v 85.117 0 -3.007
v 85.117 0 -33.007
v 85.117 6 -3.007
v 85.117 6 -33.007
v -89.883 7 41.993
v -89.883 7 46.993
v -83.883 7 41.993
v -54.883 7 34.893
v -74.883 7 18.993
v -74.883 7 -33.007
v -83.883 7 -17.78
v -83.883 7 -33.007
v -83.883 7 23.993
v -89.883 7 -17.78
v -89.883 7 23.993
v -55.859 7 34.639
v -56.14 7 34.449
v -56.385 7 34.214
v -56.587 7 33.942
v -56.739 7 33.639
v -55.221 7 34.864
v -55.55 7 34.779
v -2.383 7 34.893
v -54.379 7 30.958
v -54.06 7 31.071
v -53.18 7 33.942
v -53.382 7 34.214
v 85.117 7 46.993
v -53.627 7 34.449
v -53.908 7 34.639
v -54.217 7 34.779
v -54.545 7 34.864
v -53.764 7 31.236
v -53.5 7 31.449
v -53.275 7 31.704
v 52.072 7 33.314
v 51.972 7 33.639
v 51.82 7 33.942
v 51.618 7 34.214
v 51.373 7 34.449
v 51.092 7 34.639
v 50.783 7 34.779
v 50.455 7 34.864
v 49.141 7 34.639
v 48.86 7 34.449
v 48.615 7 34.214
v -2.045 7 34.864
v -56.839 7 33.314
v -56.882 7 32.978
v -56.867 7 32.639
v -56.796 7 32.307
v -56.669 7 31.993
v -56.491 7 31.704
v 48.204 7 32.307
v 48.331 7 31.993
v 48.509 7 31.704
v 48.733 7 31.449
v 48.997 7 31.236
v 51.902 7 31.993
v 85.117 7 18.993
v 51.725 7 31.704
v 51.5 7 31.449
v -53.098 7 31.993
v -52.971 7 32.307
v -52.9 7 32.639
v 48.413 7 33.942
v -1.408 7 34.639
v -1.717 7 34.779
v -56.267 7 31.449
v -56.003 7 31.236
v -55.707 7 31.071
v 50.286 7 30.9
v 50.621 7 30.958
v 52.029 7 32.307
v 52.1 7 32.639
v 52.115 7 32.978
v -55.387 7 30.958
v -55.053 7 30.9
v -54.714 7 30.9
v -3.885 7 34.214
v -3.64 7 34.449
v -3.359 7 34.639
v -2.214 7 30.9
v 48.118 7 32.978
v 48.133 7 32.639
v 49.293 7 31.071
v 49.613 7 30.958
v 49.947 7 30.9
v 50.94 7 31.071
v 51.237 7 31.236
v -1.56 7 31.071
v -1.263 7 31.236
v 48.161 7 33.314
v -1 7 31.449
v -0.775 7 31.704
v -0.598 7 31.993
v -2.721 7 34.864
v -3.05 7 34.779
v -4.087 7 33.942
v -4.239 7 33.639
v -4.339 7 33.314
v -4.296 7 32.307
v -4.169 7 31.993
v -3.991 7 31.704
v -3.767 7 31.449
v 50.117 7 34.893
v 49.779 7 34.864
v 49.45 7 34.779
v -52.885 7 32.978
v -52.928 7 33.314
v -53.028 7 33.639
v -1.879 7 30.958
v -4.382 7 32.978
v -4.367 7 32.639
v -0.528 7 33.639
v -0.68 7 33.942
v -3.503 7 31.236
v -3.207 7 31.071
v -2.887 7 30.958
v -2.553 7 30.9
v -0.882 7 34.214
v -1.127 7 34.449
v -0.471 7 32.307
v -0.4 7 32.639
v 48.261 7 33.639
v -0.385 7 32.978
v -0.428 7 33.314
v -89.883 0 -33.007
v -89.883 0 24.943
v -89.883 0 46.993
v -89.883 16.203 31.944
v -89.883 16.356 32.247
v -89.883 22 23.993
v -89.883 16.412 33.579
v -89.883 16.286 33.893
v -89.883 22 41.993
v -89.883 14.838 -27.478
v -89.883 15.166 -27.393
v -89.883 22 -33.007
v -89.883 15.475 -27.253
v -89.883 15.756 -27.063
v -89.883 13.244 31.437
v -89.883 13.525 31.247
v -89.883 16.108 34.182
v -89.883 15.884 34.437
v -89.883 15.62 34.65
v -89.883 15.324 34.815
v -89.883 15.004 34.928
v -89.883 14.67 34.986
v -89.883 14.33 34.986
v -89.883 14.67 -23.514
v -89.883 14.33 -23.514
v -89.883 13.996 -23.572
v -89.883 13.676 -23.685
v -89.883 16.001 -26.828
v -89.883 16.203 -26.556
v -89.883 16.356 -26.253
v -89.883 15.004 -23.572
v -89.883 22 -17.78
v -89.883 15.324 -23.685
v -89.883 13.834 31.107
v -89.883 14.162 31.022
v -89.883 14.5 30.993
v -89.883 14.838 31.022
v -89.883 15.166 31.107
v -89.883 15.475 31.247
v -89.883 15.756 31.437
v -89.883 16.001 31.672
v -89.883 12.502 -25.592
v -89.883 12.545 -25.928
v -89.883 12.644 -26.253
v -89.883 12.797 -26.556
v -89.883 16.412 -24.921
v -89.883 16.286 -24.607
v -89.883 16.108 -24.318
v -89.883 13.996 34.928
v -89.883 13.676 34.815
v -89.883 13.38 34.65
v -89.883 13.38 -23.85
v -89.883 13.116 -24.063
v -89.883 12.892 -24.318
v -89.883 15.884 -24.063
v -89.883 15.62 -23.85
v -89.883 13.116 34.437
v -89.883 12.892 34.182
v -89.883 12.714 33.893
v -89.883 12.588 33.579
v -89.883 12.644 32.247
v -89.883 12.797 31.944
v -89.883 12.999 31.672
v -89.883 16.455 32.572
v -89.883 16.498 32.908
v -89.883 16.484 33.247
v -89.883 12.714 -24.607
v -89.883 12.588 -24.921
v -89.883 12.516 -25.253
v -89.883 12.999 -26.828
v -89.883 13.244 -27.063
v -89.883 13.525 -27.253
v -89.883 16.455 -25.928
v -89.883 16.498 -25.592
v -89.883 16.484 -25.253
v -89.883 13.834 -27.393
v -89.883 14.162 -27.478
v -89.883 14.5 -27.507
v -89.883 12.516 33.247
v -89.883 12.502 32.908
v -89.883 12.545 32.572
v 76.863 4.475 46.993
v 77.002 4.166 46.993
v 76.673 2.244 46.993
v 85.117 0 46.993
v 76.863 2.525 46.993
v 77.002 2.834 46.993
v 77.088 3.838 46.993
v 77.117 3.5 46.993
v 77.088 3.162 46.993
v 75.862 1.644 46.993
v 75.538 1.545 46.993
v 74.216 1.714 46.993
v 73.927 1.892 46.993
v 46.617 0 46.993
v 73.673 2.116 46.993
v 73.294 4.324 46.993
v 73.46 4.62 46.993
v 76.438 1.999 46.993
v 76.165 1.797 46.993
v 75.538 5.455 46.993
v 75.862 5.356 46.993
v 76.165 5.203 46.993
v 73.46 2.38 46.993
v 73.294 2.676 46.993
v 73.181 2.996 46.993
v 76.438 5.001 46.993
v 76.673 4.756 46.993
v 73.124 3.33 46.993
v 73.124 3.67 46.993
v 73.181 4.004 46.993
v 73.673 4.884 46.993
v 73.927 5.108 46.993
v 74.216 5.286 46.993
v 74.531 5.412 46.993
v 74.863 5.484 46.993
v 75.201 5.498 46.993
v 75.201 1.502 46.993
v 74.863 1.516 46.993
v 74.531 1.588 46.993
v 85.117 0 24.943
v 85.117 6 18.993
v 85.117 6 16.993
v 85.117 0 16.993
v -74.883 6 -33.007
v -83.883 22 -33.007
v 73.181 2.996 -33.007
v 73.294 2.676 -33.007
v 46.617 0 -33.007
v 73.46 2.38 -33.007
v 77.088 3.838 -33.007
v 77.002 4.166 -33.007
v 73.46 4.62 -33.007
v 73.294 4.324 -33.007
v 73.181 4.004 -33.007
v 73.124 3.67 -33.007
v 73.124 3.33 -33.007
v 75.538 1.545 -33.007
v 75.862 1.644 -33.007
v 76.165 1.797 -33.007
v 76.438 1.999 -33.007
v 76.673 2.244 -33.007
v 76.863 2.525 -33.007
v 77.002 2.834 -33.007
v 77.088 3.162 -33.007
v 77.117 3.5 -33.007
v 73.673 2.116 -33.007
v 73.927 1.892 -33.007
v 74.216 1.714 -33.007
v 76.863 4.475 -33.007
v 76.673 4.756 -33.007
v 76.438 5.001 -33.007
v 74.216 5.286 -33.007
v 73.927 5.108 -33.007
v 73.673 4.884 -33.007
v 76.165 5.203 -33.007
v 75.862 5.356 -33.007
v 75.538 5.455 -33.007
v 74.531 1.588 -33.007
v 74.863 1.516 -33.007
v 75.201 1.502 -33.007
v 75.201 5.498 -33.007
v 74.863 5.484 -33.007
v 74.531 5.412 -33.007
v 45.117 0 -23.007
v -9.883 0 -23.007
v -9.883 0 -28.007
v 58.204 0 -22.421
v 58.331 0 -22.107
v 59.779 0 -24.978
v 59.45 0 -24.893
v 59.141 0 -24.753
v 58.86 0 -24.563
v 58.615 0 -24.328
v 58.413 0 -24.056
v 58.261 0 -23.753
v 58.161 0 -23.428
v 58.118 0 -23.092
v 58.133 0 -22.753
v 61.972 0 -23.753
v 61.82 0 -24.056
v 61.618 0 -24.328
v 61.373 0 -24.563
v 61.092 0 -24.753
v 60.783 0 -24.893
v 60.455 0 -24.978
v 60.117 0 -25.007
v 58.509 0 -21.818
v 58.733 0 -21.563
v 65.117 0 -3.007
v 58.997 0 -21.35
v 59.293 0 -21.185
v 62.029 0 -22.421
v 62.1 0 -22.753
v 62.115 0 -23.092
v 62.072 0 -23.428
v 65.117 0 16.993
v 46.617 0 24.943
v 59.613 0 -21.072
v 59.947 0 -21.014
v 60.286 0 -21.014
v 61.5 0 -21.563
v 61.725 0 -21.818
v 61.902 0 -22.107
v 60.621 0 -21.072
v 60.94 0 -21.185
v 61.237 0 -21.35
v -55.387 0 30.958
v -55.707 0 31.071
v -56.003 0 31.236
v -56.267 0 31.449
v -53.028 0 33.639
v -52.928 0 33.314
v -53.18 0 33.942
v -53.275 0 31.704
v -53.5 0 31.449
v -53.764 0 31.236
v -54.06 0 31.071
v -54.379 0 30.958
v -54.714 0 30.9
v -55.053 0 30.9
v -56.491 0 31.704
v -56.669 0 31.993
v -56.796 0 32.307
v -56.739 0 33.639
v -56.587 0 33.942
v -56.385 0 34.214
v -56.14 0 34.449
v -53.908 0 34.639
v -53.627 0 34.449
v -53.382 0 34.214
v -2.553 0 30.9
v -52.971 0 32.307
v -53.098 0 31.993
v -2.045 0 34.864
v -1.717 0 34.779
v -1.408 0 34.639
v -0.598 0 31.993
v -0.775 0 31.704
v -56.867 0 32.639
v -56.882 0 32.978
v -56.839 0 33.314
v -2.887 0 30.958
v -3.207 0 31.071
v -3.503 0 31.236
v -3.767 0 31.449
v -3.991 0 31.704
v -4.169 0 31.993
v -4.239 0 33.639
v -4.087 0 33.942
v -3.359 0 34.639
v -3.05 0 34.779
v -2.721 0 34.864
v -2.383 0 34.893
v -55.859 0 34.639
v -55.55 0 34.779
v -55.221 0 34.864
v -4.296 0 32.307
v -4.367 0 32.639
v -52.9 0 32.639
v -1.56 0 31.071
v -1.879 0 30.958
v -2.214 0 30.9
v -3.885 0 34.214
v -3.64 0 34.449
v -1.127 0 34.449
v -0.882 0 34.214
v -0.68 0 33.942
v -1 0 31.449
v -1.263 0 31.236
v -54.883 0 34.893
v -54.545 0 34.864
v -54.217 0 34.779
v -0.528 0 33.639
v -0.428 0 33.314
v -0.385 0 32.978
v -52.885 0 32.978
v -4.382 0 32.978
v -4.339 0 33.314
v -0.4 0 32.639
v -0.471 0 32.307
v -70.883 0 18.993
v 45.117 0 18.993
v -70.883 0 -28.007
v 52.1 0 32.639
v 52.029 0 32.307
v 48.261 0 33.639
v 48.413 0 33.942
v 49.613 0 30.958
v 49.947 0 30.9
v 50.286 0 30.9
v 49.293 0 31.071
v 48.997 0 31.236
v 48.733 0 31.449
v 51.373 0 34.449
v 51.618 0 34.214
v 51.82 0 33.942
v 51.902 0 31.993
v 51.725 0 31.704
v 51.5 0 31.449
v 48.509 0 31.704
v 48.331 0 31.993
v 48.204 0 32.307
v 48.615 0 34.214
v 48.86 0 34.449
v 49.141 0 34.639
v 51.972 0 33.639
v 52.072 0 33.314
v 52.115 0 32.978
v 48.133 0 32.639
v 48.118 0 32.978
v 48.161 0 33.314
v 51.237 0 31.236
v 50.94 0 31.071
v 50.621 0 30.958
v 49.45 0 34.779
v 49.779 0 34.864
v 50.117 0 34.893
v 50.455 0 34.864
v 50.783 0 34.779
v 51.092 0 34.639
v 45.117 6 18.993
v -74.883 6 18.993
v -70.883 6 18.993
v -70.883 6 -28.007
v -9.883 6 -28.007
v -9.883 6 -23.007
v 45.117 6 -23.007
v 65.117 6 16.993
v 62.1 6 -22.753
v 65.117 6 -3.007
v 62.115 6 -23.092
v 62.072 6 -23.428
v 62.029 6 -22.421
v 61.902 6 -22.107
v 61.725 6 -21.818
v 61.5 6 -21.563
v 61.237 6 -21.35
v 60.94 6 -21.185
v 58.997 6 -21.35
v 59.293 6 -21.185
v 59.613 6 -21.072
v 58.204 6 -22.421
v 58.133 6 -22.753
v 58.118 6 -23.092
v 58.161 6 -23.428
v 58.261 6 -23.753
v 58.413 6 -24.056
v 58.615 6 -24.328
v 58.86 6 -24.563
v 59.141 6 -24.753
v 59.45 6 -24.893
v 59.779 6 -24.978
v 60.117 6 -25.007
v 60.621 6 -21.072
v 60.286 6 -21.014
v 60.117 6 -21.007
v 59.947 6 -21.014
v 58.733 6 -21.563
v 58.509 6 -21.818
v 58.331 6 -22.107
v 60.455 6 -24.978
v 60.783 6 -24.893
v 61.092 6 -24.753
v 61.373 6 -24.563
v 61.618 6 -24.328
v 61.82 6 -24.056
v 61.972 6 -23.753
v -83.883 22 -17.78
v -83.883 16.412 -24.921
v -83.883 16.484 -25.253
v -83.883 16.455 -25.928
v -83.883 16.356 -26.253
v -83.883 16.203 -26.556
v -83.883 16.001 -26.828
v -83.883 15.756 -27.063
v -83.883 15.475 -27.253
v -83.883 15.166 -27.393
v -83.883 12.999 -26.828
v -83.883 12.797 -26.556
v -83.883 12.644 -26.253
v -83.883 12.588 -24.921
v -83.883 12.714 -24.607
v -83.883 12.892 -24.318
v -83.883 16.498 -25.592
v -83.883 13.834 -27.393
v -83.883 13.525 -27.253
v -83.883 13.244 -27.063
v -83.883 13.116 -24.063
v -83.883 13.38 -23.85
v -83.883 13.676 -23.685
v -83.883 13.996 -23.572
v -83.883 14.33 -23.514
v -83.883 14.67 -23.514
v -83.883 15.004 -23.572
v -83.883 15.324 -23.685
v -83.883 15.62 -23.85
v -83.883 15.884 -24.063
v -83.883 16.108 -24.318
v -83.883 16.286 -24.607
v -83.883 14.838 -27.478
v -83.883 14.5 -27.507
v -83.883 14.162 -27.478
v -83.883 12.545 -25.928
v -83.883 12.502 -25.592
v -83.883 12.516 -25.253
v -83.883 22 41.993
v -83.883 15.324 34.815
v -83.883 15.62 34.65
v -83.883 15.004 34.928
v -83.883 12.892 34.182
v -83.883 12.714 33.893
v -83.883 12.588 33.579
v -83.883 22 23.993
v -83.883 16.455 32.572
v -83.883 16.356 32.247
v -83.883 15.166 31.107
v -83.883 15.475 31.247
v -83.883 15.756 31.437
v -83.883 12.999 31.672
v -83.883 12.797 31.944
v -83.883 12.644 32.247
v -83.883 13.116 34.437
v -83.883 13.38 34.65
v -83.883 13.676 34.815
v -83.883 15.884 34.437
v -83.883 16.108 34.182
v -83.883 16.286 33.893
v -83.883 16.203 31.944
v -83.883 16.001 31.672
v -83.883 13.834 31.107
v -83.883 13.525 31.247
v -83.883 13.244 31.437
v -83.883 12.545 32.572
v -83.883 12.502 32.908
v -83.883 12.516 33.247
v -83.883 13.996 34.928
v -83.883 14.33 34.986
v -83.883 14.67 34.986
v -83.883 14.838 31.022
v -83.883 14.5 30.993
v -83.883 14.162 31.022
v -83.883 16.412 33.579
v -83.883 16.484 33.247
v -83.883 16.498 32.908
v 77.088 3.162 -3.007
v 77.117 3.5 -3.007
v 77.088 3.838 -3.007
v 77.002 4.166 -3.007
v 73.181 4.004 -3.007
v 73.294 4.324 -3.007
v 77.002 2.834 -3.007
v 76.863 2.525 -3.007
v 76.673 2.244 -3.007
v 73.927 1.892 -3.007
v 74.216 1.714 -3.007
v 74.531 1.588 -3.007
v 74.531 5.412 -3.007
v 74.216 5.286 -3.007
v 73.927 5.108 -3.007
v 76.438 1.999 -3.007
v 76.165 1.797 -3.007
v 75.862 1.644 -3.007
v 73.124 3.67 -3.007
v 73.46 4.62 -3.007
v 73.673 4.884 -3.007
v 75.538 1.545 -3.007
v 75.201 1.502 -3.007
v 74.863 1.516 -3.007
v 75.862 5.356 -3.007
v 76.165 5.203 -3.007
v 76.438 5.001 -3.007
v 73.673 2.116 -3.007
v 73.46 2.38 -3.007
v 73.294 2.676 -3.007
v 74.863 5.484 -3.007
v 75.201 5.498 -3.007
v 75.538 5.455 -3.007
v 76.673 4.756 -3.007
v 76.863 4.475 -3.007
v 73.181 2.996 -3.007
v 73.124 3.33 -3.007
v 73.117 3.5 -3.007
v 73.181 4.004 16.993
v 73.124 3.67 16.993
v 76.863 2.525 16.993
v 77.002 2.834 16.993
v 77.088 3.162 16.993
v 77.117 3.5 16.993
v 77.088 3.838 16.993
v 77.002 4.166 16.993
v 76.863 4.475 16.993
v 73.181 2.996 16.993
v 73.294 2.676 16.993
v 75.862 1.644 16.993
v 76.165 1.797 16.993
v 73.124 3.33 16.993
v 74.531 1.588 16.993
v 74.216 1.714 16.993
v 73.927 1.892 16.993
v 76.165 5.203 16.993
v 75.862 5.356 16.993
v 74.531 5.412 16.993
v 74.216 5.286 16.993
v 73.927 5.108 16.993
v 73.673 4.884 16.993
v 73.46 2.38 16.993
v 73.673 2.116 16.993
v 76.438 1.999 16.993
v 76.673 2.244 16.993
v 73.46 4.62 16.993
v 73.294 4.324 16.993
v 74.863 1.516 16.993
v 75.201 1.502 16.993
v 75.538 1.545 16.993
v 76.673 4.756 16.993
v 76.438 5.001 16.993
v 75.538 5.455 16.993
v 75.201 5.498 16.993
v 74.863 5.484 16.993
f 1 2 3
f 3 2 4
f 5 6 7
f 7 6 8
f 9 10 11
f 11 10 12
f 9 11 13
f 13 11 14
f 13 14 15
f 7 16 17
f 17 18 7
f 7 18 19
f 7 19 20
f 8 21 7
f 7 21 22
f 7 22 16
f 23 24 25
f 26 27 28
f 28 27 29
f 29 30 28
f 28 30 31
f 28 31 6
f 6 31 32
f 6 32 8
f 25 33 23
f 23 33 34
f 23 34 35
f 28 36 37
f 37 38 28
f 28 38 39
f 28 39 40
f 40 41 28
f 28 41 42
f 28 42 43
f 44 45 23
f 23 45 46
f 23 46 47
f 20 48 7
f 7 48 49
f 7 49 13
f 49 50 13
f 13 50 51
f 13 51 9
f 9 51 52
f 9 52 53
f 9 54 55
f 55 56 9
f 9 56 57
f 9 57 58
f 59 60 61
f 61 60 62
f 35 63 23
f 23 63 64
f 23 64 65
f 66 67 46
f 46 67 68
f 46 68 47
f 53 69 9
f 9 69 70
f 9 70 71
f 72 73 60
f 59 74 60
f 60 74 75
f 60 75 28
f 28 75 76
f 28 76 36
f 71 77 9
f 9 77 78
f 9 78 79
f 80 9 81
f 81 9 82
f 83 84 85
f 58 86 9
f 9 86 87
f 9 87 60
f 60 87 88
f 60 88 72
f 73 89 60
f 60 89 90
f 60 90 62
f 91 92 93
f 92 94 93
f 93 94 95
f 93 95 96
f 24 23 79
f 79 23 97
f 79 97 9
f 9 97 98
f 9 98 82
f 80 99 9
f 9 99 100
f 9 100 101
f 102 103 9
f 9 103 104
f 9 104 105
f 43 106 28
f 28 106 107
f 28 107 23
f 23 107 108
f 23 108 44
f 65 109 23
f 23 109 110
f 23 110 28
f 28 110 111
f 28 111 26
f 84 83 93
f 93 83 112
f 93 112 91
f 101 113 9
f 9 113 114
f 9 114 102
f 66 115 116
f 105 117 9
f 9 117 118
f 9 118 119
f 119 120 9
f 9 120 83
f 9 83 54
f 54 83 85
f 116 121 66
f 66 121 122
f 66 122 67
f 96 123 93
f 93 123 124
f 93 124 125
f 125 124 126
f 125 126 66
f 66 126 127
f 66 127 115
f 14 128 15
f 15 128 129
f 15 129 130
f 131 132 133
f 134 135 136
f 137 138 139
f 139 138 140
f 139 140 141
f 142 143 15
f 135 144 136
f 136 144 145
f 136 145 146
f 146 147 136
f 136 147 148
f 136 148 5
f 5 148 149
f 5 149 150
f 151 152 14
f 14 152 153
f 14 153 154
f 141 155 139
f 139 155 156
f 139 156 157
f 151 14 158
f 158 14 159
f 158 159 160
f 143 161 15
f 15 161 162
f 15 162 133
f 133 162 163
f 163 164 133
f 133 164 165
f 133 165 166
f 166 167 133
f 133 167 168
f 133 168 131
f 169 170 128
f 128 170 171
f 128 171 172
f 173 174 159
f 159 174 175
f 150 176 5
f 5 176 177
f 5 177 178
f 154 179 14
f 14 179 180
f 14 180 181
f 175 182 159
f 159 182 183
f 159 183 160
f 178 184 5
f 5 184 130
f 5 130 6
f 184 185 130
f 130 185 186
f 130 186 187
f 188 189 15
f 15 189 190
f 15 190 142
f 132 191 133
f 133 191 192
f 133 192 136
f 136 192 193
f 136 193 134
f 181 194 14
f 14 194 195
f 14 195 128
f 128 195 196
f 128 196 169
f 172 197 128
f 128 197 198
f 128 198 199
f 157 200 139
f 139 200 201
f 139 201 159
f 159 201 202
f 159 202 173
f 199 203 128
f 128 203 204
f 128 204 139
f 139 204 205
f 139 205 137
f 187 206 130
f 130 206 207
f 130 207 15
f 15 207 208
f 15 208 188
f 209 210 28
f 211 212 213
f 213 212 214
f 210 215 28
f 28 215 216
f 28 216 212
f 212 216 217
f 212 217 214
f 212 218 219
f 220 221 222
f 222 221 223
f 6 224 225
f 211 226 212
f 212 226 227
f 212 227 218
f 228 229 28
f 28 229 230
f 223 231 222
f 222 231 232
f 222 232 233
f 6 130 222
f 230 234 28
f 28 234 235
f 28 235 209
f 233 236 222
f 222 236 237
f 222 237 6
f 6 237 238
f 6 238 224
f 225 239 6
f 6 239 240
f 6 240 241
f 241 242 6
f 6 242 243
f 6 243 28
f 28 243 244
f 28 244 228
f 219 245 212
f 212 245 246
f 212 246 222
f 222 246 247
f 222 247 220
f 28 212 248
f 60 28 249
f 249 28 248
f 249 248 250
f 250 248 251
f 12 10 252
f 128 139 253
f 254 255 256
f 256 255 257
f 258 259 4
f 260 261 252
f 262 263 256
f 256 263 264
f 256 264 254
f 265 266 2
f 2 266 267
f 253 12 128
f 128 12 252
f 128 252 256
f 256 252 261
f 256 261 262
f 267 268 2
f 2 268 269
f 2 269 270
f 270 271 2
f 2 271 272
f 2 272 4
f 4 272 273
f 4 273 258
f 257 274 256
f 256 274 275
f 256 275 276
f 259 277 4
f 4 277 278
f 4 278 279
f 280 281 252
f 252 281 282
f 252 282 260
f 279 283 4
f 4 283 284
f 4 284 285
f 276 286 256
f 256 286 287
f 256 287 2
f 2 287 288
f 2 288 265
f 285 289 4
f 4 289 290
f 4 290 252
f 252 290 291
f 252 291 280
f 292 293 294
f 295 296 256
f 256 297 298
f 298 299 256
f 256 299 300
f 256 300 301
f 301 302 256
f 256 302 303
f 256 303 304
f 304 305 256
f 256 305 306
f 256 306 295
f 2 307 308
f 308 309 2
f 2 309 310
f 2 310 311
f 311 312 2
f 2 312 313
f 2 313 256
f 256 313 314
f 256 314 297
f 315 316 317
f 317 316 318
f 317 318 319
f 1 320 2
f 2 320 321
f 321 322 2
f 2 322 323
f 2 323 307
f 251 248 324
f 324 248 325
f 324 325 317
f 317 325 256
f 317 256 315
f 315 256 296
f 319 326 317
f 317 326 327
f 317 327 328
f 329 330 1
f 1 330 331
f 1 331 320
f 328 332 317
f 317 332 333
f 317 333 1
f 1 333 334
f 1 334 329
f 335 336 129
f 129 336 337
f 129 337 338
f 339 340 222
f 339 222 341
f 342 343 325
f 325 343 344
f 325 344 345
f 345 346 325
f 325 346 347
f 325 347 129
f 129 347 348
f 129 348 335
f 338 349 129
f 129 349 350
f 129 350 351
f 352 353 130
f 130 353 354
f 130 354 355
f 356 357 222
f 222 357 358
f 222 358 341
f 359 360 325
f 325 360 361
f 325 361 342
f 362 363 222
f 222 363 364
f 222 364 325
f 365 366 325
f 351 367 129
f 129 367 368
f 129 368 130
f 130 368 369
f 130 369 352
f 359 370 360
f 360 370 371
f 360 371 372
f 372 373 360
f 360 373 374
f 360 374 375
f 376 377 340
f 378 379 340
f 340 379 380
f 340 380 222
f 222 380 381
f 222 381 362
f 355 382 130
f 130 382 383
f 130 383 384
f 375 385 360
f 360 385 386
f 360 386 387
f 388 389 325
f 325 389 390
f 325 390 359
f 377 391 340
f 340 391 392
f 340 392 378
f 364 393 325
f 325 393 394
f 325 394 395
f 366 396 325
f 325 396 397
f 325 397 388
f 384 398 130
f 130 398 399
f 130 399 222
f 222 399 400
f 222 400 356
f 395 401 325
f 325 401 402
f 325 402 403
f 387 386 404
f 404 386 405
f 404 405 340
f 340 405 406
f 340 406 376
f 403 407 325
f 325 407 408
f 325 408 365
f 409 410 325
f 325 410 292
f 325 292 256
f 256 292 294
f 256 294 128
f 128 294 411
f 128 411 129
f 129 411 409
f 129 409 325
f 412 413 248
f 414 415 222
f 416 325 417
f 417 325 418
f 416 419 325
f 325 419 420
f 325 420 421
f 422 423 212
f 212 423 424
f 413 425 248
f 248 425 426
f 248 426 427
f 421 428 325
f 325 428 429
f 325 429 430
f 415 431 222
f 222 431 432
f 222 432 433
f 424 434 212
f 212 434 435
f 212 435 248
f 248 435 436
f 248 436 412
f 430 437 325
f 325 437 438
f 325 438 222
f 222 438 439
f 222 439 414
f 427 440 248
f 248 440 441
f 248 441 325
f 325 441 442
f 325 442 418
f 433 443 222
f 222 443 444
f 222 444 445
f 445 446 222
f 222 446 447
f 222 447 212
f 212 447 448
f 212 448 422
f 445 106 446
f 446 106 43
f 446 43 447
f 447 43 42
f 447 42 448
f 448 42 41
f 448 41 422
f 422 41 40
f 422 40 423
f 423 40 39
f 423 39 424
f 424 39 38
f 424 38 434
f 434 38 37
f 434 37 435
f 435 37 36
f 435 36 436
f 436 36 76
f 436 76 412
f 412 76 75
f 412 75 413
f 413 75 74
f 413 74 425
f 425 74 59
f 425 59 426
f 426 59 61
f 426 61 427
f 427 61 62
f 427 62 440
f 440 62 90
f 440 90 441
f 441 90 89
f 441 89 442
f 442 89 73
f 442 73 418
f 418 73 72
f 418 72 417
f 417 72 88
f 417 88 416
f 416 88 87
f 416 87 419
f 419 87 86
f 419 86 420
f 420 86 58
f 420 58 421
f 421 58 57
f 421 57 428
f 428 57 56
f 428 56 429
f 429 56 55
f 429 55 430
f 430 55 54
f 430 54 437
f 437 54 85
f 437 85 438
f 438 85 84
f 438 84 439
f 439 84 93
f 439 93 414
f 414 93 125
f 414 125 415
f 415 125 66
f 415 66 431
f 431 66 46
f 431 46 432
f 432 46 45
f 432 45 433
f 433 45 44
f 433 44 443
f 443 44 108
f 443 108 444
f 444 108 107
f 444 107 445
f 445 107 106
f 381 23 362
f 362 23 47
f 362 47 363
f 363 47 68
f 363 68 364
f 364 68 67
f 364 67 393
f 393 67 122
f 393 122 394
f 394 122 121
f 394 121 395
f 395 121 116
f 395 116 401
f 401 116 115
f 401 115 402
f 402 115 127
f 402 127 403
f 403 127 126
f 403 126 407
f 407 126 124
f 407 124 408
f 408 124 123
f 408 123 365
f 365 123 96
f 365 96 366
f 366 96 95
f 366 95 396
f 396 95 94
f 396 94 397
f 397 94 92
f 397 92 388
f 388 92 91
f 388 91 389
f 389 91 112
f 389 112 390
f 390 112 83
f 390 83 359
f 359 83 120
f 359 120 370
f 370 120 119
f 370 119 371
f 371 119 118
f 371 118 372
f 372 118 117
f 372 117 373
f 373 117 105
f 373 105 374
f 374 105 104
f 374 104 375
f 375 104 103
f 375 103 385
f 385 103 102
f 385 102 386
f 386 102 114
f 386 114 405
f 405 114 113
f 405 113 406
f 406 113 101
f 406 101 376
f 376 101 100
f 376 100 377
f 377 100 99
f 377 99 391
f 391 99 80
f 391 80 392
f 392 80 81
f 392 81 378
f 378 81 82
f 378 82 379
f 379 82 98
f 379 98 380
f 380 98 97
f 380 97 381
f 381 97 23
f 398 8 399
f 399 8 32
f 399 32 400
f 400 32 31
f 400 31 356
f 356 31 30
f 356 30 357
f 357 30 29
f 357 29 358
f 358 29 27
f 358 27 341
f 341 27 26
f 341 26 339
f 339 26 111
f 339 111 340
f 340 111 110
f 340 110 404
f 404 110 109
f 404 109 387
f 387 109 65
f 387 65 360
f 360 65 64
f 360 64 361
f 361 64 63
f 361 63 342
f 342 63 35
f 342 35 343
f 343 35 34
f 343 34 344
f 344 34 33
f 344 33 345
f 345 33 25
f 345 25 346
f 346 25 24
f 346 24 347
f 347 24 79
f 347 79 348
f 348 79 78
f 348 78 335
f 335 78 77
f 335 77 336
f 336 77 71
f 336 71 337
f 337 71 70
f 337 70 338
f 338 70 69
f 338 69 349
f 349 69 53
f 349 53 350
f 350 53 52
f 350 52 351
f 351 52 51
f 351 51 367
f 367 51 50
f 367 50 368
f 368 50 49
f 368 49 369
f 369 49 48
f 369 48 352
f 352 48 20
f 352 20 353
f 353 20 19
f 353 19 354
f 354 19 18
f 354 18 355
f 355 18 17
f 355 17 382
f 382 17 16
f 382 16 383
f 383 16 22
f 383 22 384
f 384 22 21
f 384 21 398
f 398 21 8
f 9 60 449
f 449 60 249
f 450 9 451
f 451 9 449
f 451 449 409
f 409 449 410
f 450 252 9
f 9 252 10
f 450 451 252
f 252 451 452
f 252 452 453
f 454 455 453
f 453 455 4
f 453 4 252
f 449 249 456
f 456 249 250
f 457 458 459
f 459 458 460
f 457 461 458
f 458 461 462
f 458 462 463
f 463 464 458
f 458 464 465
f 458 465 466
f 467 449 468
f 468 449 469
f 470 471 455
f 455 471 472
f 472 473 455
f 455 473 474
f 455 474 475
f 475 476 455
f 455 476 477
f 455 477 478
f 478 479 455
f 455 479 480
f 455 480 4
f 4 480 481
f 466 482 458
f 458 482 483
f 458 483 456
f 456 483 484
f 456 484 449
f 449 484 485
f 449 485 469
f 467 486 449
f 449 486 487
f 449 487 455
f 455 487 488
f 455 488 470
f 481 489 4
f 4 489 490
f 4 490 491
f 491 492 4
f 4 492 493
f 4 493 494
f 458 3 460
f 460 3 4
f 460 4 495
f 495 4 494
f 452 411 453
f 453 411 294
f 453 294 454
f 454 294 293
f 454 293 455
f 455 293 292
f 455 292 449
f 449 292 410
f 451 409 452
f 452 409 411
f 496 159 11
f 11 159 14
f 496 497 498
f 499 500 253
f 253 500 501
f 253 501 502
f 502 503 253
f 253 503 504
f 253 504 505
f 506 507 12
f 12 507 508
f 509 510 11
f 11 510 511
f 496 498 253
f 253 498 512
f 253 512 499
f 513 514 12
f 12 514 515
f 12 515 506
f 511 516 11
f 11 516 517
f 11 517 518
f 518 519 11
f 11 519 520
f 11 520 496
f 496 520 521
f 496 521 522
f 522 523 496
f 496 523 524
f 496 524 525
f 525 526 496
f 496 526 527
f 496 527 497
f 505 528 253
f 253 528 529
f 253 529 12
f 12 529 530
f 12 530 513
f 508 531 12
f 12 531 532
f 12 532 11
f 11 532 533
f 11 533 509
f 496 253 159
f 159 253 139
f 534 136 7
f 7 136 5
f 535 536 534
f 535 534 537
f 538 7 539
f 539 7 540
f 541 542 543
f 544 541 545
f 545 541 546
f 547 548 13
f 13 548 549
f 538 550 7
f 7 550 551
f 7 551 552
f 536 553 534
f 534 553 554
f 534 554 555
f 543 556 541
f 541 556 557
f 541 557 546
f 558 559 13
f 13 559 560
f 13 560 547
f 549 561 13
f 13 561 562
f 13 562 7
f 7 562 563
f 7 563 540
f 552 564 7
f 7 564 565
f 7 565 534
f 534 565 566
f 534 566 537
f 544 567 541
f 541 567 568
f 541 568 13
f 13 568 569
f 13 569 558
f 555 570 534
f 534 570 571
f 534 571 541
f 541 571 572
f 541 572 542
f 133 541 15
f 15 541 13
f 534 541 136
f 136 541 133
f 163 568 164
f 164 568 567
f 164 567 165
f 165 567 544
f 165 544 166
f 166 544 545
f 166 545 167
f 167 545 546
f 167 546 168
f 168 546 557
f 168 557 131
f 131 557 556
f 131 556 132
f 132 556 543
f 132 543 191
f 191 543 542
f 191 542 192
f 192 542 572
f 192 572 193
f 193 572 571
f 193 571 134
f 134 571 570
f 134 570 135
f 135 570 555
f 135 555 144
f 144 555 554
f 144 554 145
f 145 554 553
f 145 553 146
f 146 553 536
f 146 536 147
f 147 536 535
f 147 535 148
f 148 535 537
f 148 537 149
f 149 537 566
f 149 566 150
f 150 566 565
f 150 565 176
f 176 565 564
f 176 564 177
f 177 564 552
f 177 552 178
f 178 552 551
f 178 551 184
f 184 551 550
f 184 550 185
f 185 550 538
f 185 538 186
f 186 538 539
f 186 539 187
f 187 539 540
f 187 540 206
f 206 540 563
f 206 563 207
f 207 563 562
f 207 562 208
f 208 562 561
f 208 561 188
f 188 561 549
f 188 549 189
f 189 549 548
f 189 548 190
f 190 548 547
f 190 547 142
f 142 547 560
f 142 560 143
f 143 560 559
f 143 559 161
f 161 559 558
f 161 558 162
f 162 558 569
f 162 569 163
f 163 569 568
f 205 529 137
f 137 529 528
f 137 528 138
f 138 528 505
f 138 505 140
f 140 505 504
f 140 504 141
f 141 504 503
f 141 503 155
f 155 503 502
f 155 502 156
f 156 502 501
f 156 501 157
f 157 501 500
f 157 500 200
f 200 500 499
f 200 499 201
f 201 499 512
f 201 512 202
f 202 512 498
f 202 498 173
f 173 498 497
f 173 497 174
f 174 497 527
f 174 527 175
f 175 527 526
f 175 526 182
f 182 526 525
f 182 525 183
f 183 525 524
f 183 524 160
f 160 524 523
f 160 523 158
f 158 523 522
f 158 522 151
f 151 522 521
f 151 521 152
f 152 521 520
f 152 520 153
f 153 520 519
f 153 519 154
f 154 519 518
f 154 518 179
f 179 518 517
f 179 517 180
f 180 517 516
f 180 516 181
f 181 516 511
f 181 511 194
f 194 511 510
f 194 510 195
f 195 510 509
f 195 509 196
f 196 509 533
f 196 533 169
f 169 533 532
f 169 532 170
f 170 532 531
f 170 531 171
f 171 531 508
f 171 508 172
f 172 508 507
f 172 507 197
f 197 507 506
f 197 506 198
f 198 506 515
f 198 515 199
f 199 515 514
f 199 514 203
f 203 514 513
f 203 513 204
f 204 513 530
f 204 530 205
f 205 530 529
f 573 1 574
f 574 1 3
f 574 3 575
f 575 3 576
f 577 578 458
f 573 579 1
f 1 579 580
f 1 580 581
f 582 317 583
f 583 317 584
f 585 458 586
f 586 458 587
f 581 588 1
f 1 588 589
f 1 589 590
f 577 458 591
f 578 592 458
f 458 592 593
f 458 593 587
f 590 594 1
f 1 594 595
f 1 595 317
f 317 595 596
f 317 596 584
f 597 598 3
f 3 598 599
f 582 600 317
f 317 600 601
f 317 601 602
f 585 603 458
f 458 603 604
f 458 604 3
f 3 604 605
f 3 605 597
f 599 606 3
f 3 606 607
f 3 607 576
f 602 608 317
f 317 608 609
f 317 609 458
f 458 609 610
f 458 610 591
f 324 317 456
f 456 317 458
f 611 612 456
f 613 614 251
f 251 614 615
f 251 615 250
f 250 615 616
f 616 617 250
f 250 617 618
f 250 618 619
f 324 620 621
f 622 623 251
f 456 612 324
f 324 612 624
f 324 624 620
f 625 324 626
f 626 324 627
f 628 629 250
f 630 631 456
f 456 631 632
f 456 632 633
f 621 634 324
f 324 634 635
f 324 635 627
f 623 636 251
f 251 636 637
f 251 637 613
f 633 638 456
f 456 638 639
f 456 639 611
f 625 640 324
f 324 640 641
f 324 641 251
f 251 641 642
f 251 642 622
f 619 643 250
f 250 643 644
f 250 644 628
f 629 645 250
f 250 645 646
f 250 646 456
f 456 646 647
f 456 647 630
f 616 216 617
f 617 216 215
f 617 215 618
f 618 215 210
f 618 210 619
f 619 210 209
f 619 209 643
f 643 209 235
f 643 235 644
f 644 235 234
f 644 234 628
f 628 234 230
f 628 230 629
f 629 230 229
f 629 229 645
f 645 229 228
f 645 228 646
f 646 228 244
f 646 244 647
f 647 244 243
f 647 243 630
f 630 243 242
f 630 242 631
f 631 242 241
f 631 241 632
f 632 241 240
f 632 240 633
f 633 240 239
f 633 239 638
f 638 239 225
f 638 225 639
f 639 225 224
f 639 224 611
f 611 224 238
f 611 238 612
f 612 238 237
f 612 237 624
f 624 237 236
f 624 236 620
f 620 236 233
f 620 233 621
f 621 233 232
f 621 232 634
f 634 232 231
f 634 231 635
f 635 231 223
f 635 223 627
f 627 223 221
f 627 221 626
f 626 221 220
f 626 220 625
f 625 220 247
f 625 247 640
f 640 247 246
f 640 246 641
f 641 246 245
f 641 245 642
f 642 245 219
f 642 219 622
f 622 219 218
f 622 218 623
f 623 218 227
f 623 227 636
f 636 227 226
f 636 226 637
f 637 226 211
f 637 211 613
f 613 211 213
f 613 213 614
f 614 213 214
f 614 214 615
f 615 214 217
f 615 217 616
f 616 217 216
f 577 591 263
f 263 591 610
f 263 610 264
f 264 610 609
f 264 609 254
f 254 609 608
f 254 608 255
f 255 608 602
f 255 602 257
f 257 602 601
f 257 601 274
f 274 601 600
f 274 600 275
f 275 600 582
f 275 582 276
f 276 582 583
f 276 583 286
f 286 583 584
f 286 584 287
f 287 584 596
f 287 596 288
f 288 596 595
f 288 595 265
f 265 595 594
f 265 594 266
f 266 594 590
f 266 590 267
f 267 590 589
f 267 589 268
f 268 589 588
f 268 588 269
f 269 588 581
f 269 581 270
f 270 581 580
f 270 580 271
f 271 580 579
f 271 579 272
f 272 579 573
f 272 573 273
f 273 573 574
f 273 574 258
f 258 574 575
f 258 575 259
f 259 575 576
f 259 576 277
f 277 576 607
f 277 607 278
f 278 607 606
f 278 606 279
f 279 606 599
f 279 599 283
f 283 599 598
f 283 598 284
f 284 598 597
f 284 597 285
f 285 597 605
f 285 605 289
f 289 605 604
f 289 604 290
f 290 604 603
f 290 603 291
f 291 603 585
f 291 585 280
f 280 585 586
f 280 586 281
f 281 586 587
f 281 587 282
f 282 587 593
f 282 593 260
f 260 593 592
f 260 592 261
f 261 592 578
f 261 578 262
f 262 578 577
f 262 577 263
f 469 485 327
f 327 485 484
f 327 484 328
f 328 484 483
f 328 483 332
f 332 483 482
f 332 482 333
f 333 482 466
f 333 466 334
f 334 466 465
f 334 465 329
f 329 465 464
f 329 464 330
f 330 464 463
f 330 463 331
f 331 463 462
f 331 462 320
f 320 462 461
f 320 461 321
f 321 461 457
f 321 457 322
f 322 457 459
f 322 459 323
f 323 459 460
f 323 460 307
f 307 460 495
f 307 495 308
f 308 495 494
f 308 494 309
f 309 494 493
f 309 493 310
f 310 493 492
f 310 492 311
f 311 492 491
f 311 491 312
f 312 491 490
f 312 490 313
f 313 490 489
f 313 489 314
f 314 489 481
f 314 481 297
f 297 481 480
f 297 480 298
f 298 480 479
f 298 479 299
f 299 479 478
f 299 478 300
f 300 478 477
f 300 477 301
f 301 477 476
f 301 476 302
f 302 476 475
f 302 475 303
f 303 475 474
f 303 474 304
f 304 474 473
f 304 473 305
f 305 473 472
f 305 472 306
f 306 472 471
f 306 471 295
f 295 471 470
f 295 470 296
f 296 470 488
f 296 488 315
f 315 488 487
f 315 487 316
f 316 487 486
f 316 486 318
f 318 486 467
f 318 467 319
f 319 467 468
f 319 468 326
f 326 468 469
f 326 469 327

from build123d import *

# Parameters (mm, degrees)
SKETCH1_W               = 175
SKETCH1_H               = 80
BOSS_EXTRUDE1_DEPTH     = 7
SKETCH2_R               = 2
CUT_EXTRUDE1_DEPTH      = 10
SKETCH3_W               = 160
SKETCH3_H               = 52
CUT_EXTRUDE2_DEPTH      = 1
CUT_EXTRUDE3_DEPTH      = 10
SKETCH7_W               = 6
SKETCH7_H               = 15.226692755
SKETCH7_H_2             = 18
BOSS_EXTRUDE3_DEPTH     = 15
SKETCH8_R               = 2
CUT_EXTRUDE4_DEPTH      = 15
SKETCH9_W               = 20
SKETCH9_H               = 20
CUT_EXTRUDE5_DEPTH      = 15
SKETCH10_R              = 2
CUT_EXTRUDE7_DEPTH      = 51
CUT_EXTRUDE7_DEPTH_BACK = 31
SKETCH11_R              = 2
CUT_EXTRUDE8_DEPTH      = 10


with BuildPart() as part:
    # Sketch1 → Boss-Extrude1 (new body)
    with BuildSketch(Plane(origin=(0, 0, 0), x_dir=(1, 0, 0), z_dir=(0, 1, 0))):
        with Locations((-2.383449883, -6.993006993)):
            Rectangle(SKETCH1_W, SKETCH1_H)
    extrude(amount=BOSS_EXTRUDE1_DEPTH)

    # Sketch2 → Cut-Extrude1 (cut)
    with BuildSketch(Plane(origin=(0, 7, 0), x_dir=(1, 0, 0), z_dir=(0, 1, 0))):
        with Locations((-54.883449883, -32.893006993)):
            Circle(SKETCH2_R)
        with Locations((-2.383449883, -32.893006993)):
            Circle(SKETCH2_R)
        with Locations((50.116550117, -32.893006993)):
            Circle(SKETCH2_R)
    extrude(amount=-CUT_EXTRUDE1_DEPTH, mode=Mode.SUBTRACT)

    # Sketch3 → Cut-Extrude2 (cut)
    with BuildSketch(Plane(origin=(0, 7, 0), x_dir=(1, 0, 0), z_dir=(0, 1, 0))):
        with Locations((5.116550117, 7.006993007)):
            Rectangle(SKETCH3_W, SKETCH3_H)
    extrude(amount=-CUT_EXTRUDE2_DEPTH, mode=Mode.SUBTRACT)

    # Sketch6 → Cut-Extrude3 (cut)
    with BuildSketch(Plane(origin=(0, 6, 0), x_dir=(1, 0, 0), z_dir=(0, 1, 0))):
        Polygon((-70.883449883, 23.006993007), (-70.883449883, -18.993006993), (45.116550117, -18.993006993), (45.116550117, 23.006993007), (-9.883449883, 23.006993007), (-9.883449883, 28.006993007), (-70.883449883, 28.006993007), align=None)
    extrude(amount=-CUT_EXTRUDE3_DEPTH, mode=Mode.SUBTRACT)

    # Sketch7 → Boss-Extrude3 (add)
    with BuildSketch(Plane(origin=(0, 7, 0), x_dir=(1, 0, 0), z_dir=(0, 1, 0))):
        with Locations((-86.883449883, 25.39364663)):
            Rectangle(SKETCH7_W, SKETCH7_H)
        with Locations((-86.883449883, -32.993006993)):
            Rectangle(SKETCH7_W, SKETCH7_H_2)
    extrude(amount=BOSS_EXTRUDE3_DEPTH)

    # Sketch8 → Cut-Extrude4 (cut)
    with BuildSketch(Plane(origin=(-83.883449883, 0, 0), x_dir=(0, 0, -1), z_dir=(1, 0, 0))):
        with Locations((25.506993007, 14.5)):
            Circle(SKETCH8_R)
        with Locations((-32.993006993, 14.5)):
            Circle(SKETCH8_R)
    extrude(amount=-CUT_EXTRUDE4_DEPTH, mode=Mode.SUBTRACT)

    # Sketch9 → Cut-Extrude5 (cut)
    with BuildSketch(Plane.XZ):
        with Locations((75.116550117, 6.993006993)):
            Rectangle(SKETCH9_W, SKETCH9_H)
    extrude(amount=-CUT_EXTRUDE5_DEPTH, mode=Mode.SUBTRACT)

    # Sketch10 → Cut-Extrude7 (cut, two sides)
    with BuildSketch(Plane.XY.offset(-3.006993007)) as cut_extrude7_sk:
        with Locations((75.116550117, 3.5)):
            Circle(SKETCH10_R)
    extrude(amount=CUT_EXTRUDE7_DEPTH, mode=Mode.SUBTRACT)
    extrude(cut_extrude7_sk.sketch, amount=-CUT_EXTRUDE7_DEPTH_BACK, mode=Mode.SUBTRACT)

    # Sketch11 → Cut-Extrude8 (cut)
    with BuildSketch(Plane.XZ):
        with Locations((60.116550117, -23.006993007)):
            Circle(SKETCH11_R)
    extrude(amount=-CUT_EXTRUDE8_DEPTH, mode=Mode.SUBTRACT)


solid = part.part
